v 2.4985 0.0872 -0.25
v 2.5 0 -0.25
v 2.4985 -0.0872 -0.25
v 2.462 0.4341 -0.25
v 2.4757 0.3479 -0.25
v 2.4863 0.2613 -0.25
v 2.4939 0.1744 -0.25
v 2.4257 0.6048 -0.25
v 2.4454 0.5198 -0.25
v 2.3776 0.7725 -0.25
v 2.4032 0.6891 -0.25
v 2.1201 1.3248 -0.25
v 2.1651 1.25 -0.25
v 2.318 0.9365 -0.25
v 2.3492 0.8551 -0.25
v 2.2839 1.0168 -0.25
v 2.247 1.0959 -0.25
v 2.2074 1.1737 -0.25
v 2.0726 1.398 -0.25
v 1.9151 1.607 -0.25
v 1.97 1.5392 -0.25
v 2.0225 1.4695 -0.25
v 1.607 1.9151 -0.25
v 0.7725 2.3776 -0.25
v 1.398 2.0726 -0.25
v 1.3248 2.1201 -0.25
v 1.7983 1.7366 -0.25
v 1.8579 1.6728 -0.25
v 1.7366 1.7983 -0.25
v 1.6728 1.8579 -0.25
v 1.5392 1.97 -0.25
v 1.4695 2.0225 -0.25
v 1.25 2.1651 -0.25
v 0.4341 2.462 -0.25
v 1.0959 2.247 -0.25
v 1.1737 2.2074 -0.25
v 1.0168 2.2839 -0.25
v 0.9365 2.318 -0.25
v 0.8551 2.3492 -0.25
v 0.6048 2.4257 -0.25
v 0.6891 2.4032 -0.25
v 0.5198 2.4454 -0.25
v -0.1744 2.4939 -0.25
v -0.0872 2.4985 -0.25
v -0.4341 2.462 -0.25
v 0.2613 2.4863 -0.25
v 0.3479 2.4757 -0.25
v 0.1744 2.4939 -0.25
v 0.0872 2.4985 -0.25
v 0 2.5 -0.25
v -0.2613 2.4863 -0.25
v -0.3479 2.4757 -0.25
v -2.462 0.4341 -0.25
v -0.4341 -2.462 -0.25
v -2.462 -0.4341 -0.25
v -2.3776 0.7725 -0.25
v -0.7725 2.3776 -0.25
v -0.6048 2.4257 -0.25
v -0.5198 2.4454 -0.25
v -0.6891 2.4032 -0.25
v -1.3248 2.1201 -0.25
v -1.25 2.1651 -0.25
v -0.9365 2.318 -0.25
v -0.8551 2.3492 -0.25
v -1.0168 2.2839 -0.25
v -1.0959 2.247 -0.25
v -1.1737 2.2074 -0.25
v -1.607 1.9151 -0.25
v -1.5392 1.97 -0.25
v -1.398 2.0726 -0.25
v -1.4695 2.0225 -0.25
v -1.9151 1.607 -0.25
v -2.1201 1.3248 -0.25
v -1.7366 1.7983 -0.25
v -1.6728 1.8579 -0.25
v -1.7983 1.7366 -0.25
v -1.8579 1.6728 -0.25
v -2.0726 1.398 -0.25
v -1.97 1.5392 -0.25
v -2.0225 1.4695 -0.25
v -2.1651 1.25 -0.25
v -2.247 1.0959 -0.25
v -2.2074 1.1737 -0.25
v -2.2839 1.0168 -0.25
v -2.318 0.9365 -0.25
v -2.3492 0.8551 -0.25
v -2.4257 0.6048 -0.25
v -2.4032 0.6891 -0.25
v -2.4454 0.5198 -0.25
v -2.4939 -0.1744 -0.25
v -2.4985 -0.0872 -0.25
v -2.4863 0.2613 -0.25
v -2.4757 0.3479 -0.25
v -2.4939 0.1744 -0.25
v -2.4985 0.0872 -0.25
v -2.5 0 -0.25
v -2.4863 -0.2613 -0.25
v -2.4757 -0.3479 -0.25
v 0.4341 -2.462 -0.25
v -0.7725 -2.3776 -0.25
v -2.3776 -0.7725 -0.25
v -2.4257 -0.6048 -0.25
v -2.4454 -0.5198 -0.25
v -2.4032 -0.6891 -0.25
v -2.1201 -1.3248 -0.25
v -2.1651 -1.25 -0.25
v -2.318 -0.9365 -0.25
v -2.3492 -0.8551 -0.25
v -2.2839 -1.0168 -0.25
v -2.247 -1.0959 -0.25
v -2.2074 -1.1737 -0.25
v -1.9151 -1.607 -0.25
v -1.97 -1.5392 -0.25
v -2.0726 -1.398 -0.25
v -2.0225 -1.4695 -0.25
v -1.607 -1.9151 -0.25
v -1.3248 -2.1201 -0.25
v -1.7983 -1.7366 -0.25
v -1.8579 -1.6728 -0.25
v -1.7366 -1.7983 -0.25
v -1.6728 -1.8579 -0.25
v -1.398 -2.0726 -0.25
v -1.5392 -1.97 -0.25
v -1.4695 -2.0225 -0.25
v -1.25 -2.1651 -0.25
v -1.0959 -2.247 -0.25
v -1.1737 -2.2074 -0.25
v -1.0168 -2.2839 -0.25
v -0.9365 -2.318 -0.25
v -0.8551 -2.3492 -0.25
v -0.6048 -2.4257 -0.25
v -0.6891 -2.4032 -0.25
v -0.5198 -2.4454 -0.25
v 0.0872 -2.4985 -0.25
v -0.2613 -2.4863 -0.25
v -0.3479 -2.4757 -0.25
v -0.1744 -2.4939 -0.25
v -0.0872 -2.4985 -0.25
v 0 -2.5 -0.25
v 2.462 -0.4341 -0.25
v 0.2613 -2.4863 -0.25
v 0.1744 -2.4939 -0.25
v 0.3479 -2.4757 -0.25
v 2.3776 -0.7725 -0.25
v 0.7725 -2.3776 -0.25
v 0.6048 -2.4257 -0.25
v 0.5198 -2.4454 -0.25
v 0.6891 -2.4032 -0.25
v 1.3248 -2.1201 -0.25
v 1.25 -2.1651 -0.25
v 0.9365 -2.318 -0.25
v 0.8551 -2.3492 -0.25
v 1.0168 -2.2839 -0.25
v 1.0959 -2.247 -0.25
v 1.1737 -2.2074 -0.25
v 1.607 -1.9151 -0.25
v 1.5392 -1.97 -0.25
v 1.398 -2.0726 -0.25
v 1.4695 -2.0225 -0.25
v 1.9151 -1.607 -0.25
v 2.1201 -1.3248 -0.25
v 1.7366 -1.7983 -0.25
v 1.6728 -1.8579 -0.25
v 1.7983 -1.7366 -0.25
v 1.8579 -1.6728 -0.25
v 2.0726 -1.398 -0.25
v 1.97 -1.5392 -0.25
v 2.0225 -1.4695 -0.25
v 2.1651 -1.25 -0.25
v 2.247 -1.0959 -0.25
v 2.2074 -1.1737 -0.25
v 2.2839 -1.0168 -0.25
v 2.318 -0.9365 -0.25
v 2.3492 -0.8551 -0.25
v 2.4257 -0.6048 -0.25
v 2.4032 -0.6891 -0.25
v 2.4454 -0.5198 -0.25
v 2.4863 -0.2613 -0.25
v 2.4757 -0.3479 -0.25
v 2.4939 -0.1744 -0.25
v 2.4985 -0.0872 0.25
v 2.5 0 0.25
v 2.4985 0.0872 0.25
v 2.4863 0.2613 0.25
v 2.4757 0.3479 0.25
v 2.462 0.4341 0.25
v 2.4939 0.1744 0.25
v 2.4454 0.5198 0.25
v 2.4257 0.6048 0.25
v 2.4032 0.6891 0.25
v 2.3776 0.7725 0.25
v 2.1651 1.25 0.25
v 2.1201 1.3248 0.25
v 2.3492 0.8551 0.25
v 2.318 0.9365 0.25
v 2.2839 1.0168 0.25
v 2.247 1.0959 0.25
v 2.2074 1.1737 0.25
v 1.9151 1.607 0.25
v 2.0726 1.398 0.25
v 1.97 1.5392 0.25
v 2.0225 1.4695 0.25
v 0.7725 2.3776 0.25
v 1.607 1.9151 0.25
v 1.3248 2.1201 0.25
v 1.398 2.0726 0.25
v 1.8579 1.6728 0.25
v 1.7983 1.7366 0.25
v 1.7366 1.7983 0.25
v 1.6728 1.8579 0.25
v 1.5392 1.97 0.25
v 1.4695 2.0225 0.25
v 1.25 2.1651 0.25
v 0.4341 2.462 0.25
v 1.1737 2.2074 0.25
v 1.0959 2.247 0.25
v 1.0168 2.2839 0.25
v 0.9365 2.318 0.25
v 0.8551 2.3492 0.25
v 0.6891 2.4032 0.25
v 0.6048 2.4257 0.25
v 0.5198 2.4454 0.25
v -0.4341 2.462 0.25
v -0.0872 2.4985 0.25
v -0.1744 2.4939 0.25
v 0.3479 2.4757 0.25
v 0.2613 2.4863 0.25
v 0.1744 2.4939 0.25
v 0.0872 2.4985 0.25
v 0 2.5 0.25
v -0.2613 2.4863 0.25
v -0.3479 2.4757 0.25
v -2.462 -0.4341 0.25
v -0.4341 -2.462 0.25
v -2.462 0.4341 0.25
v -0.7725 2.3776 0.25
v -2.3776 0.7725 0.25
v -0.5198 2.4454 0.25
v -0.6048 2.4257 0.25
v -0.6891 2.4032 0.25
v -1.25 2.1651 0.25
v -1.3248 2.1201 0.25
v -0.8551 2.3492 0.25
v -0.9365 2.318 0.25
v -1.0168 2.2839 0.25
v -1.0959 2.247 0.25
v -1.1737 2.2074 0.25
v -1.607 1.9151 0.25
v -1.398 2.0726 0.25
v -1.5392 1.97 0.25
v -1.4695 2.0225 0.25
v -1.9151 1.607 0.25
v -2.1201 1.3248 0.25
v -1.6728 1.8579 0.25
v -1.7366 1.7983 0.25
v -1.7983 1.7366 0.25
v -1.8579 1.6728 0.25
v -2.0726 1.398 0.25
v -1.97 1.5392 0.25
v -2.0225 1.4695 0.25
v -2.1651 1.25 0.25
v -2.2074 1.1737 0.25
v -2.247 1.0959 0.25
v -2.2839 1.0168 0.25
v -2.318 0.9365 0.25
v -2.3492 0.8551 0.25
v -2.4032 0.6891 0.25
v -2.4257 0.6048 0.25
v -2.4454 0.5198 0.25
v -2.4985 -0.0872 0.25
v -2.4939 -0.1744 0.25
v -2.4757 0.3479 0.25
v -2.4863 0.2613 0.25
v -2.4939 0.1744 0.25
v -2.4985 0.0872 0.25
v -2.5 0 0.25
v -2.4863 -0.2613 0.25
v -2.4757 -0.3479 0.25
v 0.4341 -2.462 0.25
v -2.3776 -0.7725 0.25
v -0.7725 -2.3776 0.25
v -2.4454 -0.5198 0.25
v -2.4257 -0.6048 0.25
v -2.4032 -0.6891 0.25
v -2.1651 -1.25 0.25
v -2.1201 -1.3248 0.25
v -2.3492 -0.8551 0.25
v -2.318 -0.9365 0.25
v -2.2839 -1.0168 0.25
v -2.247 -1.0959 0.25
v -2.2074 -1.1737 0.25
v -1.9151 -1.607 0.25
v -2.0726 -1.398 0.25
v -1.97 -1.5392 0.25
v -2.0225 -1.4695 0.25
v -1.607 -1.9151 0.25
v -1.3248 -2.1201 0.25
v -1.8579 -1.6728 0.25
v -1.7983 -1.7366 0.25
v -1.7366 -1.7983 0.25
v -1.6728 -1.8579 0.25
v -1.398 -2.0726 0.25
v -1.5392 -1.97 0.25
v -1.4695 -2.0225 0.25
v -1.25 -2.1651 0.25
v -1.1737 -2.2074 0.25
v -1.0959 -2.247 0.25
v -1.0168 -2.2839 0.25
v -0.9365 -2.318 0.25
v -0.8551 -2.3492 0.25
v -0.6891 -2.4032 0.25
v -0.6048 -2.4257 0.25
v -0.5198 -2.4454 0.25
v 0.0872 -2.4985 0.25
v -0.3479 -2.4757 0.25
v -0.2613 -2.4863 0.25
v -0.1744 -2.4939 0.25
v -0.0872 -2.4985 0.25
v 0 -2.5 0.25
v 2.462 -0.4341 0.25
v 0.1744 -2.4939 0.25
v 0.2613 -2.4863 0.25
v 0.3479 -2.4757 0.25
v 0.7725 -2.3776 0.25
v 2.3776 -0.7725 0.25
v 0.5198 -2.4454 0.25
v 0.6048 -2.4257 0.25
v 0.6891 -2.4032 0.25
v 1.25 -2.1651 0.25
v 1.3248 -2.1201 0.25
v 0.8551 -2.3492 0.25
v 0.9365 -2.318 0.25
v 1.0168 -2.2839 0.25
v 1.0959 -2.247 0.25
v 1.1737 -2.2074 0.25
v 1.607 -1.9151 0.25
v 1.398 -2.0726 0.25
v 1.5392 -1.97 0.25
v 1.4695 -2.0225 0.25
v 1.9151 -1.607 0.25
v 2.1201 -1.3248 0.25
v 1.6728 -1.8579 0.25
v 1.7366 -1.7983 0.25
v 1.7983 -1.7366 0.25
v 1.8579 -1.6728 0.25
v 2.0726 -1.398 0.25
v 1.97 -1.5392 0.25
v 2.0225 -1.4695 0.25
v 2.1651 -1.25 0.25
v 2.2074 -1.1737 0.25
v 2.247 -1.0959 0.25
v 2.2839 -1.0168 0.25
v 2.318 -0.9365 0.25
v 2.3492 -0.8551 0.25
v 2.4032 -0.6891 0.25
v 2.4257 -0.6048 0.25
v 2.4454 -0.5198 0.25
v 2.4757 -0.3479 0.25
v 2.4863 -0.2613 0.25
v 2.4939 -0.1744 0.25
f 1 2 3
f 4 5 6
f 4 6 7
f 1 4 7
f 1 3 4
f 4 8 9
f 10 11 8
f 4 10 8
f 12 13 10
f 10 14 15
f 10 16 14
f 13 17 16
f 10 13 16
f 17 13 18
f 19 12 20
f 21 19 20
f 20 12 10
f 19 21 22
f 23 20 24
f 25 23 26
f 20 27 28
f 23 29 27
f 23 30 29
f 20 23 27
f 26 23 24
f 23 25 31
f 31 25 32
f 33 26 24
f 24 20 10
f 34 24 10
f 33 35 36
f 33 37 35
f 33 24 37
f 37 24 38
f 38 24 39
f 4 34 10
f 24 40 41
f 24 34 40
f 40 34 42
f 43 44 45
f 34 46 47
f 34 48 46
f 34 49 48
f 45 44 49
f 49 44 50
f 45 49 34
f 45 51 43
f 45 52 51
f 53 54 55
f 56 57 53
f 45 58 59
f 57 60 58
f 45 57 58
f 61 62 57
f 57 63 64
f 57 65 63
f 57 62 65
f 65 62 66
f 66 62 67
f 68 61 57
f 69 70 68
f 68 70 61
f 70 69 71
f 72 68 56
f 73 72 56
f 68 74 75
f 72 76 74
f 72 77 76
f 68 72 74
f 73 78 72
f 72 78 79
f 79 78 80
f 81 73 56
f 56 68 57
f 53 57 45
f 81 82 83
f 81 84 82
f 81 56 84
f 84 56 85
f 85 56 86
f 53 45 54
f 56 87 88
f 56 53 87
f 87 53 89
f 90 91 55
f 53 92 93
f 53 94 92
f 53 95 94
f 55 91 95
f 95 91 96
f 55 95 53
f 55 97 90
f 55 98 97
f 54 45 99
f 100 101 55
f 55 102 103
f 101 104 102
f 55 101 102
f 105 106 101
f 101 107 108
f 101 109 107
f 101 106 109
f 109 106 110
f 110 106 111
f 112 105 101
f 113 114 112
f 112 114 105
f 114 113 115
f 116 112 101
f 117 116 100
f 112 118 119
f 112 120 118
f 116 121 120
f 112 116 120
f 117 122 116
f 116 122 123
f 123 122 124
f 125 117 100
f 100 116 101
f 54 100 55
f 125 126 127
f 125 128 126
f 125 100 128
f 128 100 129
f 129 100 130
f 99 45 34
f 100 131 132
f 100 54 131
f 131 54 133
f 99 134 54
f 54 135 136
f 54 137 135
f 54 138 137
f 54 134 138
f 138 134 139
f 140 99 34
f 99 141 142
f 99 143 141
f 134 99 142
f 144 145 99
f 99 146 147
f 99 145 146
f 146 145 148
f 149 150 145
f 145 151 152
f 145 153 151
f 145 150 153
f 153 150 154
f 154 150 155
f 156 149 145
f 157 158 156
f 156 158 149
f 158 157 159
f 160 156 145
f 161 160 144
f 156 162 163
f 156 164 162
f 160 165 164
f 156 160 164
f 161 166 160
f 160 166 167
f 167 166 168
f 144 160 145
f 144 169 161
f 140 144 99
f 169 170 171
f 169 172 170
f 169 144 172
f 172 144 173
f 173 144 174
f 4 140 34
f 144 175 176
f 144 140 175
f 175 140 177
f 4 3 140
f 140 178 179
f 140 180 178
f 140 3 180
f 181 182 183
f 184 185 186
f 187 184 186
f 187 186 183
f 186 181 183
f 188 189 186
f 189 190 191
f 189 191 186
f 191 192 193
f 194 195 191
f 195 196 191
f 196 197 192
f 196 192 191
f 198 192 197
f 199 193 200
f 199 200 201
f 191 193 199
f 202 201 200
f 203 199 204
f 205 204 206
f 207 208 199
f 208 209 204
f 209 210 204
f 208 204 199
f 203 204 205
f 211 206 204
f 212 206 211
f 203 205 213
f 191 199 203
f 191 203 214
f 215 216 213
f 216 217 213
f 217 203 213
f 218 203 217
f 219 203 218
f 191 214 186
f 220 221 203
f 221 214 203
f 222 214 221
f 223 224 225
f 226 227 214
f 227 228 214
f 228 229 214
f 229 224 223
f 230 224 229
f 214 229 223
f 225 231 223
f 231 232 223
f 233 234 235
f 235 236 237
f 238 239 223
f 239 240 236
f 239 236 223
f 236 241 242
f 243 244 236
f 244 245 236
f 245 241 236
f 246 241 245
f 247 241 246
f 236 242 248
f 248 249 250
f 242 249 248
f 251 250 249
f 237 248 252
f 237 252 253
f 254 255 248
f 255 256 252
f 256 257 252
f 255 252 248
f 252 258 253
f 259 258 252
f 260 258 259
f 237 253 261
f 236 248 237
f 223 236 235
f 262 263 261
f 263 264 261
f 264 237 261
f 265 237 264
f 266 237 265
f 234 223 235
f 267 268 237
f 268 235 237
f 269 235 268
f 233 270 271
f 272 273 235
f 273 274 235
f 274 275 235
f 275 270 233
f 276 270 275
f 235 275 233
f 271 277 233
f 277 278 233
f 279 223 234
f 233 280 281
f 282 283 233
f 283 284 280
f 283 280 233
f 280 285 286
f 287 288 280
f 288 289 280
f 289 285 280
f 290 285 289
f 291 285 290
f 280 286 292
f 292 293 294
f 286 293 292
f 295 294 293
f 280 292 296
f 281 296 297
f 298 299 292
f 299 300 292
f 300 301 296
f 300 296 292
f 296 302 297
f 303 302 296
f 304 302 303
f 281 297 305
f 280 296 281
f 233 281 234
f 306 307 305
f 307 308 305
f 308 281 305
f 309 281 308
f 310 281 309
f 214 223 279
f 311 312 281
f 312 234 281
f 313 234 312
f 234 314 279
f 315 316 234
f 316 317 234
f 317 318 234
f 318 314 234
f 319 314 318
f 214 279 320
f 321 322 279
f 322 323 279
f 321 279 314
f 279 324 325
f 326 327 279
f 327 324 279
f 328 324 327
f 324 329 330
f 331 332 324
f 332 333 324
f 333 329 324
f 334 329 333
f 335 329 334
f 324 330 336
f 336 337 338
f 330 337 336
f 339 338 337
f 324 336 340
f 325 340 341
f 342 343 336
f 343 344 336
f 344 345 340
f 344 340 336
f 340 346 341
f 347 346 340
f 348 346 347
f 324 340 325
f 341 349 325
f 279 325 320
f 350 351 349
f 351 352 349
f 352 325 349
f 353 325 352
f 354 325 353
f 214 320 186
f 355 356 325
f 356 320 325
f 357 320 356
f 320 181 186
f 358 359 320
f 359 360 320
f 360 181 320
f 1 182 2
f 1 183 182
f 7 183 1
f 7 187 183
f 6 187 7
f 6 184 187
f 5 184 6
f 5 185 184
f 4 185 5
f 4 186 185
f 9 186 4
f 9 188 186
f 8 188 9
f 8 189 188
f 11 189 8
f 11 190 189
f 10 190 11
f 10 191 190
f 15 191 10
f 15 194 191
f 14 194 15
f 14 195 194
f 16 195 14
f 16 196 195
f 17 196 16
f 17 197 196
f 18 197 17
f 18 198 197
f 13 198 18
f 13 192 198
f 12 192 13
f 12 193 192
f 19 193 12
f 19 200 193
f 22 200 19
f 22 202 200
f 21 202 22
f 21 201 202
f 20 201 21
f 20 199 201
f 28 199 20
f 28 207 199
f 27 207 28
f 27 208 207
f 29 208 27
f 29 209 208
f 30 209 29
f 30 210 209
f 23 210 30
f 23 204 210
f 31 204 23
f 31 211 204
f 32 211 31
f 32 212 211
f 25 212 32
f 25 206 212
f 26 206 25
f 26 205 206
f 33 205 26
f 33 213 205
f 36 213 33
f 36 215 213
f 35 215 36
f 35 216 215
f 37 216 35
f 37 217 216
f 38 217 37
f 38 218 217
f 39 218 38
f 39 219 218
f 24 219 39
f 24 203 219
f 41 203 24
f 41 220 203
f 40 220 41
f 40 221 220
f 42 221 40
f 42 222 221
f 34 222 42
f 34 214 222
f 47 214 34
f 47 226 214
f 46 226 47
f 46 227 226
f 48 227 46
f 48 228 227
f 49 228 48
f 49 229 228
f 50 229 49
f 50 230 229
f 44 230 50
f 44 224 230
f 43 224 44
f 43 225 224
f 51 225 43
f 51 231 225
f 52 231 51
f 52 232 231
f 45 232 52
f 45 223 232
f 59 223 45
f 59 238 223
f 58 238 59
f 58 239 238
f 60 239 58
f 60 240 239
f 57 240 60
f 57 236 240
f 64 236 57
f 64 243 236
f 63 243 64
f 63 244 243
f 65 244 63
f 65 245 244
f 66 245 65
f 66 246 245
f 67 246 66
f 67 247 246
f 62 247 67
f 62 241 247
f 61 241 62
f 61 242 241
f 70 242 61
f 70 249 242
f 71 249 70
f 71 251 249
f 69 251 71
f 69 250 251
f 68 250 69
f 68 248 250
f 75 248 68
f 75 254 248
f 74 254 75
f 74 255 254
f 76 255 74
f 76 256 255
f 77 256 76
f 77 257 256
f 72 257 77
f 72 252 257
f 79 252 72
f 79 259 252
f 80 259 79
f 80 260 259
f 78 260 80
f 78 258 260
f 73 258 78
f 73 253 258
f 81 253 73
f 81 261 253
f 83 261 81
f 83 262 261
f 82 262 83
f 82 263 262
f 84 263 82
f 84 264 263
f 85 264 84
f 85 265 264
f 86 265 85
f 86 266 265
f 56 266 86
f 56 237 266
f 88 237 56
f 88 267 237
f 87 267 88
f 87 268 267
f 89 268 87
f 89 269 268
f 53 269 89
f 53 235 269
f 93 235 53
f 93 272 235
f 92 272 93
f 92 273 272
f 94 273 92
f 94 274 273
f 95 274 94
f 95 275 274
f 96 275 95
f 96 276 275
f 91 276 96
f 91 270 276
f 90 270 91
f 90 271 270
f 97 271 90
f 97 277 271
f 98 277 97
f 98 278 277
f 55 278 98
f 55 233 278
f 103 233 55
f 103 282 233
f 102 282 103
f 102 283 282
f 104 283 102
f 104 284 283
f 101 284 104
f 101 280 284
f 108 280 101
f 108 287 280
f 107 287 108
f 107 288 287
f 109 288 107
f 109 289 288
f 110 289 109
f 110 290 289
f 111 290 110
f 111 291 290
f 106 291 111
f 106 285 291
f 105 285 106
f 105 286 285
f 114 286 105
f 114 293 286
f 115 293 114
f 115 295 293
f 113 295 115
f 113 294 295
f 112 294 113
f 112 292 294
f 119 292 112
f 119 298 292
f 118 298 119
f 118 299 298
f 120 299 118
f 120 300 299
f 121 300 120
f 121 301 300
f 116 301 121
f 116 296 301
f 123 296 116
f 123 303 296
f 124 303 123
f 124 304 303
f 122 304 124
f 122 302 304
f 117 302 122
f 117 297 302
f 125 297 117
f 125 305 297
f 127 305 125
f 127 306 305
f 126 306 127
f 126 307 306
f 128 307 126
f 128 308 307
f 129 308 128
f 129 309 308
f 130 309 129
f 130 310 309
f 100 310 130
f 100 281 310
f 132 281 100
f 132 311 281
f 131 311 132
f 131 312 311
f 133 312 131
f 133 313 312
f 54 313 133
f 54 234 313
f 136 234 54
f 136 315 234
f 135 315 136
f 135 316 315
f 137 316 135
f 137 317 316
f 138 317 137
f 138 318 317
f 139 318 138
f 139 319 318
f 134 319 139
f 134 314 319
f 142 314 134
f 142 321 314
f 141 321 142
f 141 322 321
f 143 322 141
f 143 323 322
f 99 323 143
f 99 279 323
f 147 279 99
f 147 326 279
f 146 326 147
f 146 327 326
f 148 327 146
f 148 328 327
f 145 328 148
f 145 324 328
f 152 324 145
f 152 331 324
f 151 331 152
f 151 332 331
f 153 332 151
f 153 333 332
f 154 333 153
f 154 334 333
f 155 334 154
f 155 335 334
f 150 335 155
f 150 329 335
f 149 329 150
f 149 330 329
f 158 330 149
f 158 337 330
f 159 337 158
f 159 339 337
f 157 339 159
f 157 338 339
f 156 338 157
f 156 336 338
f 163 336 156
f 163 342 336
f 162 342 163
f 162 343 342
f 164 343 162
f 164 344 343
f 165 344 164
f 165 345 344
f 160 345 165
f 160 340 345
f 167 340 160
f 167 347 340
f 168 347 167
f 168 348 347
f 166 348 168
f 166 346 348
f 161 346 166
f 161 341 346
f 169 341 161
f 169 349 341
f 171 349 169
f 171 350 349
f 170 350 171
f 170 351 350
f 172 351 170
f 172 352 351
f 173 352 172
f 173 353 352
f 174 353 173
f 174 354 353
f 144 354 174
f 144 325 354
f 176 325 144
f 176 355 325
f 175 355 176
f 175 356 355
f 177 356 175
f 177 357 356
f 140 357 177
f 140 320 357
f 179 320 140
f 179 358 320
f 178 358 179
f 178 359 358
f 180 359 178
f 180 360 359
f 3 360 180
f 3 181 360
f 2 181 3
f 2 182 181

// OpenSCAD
linear_extrude(height = 0.5, center = true) {
circle(r=2.5, $fn=180);
}
